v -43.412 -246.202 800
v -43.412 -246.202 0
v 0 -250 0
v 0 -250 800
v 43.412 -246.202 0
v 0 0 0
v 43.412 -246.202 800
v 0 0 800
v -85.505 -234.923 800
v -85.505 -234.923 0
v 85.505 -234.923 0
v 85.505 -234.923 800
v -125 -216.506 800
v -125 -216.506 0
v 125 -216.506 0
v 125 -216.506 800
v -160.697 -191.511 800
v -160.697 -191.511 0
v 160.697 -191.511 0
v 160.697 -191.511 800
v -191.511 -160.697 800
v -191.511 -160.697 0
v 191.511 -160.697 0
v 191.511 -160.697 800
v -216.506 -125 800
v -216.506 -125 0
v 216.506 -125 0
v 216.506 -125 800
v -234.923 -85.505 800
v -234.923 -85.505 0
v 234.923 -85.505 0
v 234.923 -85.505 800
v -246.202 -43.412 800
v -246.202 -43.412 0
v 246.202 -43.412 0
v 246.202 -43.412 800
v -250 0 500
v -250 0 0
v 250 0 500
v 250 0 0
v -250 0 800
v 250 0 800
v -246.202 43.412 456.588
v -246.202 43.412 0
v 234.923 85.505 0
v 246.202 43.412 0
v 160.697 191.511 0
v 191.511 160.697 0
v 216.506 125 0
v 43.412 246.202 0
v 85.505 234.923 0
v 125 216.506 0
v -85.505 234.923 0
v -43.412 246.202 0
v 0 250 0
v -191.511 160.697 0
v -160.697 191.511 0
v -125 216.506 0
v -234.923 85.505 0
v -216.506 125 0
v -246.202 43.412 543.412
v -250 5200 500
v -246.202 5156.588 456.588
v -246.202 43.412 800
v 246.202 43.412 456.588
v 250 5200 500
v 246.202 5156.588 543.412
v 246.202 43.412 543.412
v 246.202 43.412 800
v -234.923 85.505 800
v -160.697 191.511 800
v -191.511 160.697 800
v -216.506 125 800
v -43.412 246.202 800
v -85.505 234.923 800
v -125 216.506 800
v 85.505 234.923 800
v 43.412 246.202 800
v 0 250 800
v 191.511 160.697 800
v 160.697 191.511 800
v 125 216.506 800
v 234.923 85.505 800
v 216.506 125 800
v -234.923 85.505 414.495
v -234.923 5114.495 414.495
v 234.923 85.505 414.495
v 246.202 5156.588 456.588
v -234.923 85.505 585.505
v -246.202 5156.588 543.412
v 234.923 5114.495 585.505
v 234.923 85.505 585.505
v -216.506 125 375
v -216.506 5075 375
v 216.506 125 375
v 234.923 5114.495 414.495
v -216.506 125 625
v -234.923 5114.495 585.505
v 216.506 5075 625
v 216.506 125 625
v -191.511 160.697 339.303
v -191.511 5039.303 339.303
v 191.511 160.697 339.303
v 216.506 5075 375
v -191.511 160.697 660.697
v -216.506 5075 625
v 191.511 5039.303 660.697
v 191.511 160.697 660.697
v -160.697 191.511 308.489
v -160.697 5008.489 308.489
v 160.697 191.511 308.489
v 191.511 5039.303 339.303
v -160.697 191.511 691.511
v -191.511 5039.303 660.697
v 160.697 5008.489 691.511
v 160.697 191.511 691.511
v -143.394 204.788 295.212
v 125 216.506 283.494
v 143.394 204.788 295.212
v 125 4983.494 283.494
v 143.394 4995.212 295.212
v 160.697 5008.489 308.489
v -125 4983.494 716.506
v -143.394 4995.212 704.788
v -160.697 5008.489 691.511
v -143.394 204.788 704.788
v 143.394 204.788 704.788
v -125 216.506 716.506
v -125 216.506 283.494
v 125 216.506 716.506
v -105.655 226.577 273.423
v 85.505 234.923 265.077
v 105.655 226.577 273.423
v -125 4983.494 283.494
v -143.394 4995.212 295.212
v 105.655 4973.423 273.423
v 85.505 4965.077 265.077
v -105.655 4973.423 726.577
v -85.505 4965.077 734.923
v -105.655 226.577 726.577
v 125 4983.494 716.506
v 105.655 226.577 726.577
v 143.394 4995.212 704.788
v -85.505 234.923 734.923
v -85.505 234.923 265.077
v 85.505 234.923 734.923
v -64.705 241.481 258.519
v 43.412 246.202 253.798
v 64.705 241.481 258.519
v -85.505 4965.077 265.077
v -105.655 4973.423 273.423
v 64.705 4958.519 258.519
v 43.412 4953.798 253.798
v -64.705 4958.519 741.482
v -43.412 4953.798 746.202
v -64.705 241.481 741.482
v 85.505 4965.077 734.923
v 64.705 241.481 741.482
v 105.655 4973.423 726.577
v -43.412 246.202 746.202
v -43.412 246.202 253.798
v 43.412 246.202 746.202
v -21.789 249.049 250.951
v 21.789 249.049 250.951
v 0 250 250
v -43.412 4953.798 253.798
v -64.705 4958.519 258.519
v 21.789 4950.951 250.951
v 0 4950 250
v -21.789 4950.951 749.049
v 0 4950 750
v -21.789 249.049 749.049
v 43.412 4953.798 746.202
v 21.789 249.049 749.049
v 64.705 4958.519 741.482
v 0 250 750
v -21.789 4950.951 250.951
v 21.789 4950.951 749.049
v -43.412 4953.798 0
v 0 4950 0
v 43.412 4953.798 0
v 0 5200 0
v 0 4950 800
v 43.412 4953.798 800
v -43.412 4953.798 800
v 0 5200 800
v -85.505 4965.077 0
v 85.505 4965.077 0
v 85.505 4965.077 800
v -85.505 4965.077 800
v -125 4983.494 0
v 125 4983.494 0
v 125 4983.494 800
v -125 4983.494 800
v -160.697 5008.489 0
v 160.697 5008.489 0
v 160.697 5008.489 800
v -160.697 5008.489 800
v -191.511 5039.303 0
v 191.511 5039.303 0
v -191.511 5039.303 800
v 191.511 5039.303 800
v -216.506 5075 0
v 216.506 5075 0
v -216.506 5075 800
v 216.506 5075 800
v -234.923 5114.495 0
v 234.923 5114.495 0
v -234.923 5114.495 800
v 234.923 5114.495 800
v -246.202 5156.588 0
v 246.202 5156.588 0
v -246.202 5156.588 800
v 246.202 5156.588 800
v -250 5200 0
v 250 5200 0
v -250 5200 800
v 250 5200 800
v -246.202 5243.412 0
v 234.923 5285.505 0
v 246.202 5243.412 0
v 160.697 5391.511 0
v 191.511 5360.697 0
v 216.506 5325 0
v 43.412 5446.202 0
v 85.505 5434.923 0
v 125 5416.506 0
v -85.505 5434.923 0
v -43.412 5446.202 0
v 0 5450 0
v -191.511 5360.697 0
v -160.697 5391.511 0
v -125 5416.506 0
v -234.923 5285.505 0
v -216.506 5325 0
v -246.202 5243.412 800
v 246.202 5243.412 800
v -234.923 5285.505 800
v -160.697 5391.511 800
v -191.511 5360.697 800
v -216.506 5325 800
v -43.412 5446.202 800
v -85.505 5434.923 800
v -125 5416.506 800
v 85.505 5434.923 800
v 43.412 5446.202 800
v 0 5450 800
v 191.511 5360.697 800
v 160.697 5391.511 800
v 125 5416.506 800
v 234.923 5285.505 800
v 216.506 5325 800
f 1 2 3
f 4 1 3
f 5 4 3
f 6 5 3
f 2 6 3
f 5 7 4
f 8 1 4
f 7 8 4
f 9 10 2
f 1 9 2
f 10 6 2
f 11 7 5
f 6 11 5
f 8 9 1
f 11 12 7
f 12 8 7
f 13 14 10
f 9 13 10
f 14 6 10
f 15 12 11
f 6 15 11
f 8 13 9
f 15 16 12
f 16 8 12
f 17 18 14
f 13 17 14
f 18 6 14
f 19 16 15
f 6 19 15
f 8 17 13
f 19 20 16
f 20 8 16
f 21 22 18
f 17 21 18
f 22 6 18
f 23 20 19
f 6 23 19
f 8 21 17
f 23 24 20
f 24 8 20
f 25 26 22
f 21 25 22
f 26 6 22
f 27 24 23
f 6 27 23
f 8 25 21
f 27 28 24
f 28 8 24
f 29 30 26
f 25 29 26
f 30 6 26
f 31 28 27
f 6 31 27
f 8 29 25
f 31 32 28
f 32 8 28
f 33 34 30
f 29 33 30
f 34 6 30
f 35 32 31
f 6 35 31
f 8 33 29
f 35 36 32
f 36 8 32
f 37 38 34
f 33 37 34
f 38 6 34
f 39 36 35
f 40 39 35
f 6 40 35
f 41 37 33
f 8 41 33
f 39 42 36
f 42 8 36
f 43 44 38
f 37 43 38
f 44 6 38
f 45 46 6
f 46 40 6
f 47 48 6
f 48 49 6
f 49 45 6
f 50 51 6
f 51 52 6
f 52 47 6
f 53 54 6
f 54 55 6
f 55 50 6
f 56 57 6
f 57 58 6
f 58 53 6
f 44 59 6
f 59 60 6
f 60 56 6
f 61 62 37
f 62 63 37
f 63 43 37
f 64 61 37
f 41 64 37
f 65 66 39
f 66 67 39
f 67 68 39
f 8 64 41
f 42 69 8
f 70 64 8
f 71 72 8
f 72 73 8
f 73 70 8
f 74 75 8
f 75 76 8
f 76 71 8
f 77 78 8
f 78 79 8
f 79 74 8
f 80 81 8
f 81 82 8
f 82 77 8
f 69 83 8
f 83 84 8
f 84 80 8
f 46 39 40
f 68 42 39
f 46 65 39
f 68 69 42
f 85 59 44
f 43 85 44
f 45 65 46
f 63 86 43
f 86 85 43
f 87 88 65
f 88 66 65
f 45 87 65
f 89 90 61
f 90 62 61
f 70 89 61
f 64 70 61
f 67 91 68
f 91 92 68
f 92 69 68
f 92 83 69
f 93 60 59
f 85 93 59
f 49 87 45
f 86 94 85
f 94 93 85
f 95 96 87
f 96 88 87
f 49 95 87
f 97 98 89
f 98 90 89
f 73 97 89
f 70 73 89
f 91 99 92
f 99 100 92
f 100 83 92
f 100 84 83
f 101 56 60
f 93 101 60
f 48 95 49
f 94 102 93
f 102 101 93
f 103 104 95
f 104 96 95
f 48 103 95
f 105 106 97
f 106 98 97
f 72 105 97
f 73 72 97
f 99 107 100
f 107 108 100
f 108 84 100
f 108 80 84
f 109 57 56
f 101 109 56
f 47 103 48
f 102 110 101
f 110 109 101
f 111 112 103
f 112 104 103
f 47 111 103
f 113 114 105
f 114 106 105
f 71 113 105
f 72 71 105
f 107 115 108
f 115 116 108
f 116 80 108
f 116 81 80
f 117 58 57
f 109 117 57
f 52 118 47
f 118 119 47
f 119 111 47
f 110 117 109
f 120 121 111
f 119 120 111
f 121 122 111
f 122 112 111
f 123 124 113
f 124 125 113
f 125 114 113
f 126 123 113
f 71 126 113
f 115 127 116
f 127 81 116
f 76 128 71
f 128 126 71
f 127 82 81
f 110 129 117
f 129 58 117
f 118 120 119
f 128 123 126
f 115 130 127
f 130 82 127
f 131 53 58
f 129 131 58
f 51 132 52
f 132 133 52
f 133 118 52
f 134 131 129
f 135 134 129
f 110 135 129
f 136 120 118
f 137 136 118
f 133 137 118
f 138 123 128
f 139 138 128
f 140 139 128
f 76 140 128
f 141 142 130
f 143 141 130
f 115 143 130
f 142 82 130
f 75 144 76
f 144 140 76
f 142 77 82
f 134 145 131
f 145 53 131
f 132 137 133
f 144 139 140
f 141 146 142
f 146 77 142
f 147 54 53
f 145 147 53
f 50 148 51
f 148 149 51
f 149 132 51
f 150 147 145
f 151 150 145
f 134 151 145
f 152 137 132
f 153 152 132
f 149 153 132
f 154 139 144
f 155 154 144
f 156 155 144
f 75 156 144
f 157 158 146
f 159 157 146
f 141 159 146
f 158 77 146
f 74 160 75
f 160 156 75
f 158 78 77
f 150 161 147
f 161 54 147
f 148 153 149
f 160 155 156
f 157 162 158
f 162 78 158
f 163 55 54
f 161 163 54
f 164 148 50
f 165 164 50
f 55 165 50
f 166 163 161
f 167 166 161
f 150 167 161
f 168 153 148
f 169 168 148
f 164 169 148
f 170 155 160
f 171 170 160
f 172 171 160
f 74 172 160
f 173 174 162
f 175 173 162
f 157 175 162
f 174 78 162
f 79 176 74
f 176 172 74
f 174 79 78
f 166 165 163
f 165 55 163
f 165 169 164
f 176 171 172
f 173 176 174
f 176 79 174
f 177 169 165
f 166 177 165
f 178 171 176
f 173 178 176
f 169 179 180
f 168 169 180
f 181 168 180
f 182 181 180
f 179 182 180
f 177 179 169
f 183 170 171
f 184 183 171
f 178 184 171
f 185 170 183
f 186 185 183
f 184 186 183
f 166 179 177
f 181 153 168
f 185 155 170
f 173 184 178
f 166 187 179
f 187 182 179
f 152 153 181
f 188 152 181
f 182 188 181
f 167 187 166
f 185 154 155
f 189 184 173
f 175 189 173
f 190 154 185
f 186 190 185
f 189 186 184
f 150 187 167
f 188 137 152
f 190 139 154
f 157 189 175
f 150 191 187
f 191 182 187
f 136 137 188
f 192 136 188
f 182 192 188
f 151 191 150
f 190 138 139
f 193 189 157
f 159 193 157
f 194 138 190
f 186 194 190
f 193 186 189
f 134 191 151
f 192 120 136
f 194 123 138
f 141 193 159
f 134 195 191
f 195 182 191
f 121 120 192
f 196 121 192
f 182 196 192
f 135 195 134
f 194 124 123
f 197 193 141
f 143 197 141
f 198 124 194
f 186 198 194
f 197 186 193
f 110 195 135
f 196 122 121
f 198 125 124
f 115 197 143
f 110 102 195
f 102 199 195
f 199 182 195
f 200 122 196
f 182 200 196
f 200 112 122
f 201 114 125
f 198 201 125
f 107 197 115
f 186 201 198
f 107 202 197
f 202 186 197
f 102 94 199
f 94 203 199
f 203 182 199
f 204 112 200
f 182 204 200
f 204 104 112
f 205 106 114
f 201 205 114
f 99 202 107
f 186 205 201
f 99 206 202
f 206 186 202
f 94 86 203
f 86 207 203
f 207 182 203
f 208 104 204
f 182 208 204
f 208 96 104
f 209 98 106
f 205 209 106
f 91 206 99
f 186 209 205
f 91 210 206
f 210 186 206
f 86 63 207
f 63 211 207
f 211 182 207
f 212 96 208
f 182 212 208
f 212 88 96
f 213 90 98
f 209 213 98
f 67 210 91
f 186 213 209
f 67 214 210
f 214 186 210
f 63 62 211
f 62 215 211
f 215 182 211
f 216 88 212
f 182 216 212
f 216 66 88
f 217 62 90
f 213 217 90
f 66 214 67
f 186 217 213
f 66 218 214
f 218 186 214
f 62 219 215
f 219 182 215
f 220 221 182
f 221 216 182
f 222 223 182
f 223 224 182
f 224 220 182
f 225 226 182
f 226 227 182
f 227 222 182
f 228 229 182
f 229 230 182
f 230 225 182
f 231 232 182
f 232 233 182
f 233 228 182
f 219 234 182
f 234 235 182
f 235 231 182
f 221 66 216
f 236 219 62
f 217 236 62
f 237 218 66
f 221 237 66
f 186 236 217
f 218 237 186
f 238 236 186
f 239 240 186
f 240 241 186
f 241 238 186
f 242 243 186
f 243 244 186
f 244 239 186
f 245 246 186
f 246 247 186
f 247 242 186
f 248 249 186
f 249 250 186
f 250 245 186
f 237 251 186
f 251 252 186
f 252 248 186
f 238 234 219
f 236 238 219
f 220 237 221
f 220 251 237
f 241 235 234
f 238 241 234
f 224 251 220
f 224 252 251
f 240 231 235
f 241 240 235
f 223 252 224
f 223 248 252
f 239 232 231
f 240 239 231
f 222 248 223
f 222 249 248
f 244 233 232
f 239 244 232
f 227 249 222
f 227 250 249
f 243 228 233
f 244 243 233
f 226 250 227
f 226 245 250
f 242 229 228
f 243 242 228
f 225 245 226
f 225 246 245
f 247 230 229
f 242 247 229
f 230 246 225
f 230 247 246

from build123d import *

# Parameters (mm, degrees)
SKETCH_1_R             = 250
EXTRUDE_1_DEPTH        = 800
SKETCH_2_R             = 250
EXTRUDE_2_DEPTH        = 5200
PATTERN_LINEAR_1_COUNT = 2
PATTERN_LINEAR_1_PITCH = 5200


with BuildPart() as part:
    # 草图1 → 凸台-拉伸1 (new body)
    with BuildSketch(Plane.XY):
        Circle(SKETCH_1_R)
    extrude_1 = extrude(amount=EXTRUDE_1_DEPTH)

    # 草图2 → 凸台-拉伸2 (add)
    with BuildSketch(Plane(origin=(0, 0, 0), x_dir=(1, 0, 0), z_dir=(0, 1, 0))):
        with Locations((0, -500)):
            Circle(SKETCH_2_R)
    extrude(amount=EXTRUDE_2_DEPTH)

    # 阵列(线性)1: 凸台-拉伸1 ×2
    with Locations(*[(0, i * PATTERN_LINEAR_1_PITCH, 0) for i in range(1, PATTERN_LINEAR_1_COUNT)]):
        add(extrude_1)


solid = part.part
